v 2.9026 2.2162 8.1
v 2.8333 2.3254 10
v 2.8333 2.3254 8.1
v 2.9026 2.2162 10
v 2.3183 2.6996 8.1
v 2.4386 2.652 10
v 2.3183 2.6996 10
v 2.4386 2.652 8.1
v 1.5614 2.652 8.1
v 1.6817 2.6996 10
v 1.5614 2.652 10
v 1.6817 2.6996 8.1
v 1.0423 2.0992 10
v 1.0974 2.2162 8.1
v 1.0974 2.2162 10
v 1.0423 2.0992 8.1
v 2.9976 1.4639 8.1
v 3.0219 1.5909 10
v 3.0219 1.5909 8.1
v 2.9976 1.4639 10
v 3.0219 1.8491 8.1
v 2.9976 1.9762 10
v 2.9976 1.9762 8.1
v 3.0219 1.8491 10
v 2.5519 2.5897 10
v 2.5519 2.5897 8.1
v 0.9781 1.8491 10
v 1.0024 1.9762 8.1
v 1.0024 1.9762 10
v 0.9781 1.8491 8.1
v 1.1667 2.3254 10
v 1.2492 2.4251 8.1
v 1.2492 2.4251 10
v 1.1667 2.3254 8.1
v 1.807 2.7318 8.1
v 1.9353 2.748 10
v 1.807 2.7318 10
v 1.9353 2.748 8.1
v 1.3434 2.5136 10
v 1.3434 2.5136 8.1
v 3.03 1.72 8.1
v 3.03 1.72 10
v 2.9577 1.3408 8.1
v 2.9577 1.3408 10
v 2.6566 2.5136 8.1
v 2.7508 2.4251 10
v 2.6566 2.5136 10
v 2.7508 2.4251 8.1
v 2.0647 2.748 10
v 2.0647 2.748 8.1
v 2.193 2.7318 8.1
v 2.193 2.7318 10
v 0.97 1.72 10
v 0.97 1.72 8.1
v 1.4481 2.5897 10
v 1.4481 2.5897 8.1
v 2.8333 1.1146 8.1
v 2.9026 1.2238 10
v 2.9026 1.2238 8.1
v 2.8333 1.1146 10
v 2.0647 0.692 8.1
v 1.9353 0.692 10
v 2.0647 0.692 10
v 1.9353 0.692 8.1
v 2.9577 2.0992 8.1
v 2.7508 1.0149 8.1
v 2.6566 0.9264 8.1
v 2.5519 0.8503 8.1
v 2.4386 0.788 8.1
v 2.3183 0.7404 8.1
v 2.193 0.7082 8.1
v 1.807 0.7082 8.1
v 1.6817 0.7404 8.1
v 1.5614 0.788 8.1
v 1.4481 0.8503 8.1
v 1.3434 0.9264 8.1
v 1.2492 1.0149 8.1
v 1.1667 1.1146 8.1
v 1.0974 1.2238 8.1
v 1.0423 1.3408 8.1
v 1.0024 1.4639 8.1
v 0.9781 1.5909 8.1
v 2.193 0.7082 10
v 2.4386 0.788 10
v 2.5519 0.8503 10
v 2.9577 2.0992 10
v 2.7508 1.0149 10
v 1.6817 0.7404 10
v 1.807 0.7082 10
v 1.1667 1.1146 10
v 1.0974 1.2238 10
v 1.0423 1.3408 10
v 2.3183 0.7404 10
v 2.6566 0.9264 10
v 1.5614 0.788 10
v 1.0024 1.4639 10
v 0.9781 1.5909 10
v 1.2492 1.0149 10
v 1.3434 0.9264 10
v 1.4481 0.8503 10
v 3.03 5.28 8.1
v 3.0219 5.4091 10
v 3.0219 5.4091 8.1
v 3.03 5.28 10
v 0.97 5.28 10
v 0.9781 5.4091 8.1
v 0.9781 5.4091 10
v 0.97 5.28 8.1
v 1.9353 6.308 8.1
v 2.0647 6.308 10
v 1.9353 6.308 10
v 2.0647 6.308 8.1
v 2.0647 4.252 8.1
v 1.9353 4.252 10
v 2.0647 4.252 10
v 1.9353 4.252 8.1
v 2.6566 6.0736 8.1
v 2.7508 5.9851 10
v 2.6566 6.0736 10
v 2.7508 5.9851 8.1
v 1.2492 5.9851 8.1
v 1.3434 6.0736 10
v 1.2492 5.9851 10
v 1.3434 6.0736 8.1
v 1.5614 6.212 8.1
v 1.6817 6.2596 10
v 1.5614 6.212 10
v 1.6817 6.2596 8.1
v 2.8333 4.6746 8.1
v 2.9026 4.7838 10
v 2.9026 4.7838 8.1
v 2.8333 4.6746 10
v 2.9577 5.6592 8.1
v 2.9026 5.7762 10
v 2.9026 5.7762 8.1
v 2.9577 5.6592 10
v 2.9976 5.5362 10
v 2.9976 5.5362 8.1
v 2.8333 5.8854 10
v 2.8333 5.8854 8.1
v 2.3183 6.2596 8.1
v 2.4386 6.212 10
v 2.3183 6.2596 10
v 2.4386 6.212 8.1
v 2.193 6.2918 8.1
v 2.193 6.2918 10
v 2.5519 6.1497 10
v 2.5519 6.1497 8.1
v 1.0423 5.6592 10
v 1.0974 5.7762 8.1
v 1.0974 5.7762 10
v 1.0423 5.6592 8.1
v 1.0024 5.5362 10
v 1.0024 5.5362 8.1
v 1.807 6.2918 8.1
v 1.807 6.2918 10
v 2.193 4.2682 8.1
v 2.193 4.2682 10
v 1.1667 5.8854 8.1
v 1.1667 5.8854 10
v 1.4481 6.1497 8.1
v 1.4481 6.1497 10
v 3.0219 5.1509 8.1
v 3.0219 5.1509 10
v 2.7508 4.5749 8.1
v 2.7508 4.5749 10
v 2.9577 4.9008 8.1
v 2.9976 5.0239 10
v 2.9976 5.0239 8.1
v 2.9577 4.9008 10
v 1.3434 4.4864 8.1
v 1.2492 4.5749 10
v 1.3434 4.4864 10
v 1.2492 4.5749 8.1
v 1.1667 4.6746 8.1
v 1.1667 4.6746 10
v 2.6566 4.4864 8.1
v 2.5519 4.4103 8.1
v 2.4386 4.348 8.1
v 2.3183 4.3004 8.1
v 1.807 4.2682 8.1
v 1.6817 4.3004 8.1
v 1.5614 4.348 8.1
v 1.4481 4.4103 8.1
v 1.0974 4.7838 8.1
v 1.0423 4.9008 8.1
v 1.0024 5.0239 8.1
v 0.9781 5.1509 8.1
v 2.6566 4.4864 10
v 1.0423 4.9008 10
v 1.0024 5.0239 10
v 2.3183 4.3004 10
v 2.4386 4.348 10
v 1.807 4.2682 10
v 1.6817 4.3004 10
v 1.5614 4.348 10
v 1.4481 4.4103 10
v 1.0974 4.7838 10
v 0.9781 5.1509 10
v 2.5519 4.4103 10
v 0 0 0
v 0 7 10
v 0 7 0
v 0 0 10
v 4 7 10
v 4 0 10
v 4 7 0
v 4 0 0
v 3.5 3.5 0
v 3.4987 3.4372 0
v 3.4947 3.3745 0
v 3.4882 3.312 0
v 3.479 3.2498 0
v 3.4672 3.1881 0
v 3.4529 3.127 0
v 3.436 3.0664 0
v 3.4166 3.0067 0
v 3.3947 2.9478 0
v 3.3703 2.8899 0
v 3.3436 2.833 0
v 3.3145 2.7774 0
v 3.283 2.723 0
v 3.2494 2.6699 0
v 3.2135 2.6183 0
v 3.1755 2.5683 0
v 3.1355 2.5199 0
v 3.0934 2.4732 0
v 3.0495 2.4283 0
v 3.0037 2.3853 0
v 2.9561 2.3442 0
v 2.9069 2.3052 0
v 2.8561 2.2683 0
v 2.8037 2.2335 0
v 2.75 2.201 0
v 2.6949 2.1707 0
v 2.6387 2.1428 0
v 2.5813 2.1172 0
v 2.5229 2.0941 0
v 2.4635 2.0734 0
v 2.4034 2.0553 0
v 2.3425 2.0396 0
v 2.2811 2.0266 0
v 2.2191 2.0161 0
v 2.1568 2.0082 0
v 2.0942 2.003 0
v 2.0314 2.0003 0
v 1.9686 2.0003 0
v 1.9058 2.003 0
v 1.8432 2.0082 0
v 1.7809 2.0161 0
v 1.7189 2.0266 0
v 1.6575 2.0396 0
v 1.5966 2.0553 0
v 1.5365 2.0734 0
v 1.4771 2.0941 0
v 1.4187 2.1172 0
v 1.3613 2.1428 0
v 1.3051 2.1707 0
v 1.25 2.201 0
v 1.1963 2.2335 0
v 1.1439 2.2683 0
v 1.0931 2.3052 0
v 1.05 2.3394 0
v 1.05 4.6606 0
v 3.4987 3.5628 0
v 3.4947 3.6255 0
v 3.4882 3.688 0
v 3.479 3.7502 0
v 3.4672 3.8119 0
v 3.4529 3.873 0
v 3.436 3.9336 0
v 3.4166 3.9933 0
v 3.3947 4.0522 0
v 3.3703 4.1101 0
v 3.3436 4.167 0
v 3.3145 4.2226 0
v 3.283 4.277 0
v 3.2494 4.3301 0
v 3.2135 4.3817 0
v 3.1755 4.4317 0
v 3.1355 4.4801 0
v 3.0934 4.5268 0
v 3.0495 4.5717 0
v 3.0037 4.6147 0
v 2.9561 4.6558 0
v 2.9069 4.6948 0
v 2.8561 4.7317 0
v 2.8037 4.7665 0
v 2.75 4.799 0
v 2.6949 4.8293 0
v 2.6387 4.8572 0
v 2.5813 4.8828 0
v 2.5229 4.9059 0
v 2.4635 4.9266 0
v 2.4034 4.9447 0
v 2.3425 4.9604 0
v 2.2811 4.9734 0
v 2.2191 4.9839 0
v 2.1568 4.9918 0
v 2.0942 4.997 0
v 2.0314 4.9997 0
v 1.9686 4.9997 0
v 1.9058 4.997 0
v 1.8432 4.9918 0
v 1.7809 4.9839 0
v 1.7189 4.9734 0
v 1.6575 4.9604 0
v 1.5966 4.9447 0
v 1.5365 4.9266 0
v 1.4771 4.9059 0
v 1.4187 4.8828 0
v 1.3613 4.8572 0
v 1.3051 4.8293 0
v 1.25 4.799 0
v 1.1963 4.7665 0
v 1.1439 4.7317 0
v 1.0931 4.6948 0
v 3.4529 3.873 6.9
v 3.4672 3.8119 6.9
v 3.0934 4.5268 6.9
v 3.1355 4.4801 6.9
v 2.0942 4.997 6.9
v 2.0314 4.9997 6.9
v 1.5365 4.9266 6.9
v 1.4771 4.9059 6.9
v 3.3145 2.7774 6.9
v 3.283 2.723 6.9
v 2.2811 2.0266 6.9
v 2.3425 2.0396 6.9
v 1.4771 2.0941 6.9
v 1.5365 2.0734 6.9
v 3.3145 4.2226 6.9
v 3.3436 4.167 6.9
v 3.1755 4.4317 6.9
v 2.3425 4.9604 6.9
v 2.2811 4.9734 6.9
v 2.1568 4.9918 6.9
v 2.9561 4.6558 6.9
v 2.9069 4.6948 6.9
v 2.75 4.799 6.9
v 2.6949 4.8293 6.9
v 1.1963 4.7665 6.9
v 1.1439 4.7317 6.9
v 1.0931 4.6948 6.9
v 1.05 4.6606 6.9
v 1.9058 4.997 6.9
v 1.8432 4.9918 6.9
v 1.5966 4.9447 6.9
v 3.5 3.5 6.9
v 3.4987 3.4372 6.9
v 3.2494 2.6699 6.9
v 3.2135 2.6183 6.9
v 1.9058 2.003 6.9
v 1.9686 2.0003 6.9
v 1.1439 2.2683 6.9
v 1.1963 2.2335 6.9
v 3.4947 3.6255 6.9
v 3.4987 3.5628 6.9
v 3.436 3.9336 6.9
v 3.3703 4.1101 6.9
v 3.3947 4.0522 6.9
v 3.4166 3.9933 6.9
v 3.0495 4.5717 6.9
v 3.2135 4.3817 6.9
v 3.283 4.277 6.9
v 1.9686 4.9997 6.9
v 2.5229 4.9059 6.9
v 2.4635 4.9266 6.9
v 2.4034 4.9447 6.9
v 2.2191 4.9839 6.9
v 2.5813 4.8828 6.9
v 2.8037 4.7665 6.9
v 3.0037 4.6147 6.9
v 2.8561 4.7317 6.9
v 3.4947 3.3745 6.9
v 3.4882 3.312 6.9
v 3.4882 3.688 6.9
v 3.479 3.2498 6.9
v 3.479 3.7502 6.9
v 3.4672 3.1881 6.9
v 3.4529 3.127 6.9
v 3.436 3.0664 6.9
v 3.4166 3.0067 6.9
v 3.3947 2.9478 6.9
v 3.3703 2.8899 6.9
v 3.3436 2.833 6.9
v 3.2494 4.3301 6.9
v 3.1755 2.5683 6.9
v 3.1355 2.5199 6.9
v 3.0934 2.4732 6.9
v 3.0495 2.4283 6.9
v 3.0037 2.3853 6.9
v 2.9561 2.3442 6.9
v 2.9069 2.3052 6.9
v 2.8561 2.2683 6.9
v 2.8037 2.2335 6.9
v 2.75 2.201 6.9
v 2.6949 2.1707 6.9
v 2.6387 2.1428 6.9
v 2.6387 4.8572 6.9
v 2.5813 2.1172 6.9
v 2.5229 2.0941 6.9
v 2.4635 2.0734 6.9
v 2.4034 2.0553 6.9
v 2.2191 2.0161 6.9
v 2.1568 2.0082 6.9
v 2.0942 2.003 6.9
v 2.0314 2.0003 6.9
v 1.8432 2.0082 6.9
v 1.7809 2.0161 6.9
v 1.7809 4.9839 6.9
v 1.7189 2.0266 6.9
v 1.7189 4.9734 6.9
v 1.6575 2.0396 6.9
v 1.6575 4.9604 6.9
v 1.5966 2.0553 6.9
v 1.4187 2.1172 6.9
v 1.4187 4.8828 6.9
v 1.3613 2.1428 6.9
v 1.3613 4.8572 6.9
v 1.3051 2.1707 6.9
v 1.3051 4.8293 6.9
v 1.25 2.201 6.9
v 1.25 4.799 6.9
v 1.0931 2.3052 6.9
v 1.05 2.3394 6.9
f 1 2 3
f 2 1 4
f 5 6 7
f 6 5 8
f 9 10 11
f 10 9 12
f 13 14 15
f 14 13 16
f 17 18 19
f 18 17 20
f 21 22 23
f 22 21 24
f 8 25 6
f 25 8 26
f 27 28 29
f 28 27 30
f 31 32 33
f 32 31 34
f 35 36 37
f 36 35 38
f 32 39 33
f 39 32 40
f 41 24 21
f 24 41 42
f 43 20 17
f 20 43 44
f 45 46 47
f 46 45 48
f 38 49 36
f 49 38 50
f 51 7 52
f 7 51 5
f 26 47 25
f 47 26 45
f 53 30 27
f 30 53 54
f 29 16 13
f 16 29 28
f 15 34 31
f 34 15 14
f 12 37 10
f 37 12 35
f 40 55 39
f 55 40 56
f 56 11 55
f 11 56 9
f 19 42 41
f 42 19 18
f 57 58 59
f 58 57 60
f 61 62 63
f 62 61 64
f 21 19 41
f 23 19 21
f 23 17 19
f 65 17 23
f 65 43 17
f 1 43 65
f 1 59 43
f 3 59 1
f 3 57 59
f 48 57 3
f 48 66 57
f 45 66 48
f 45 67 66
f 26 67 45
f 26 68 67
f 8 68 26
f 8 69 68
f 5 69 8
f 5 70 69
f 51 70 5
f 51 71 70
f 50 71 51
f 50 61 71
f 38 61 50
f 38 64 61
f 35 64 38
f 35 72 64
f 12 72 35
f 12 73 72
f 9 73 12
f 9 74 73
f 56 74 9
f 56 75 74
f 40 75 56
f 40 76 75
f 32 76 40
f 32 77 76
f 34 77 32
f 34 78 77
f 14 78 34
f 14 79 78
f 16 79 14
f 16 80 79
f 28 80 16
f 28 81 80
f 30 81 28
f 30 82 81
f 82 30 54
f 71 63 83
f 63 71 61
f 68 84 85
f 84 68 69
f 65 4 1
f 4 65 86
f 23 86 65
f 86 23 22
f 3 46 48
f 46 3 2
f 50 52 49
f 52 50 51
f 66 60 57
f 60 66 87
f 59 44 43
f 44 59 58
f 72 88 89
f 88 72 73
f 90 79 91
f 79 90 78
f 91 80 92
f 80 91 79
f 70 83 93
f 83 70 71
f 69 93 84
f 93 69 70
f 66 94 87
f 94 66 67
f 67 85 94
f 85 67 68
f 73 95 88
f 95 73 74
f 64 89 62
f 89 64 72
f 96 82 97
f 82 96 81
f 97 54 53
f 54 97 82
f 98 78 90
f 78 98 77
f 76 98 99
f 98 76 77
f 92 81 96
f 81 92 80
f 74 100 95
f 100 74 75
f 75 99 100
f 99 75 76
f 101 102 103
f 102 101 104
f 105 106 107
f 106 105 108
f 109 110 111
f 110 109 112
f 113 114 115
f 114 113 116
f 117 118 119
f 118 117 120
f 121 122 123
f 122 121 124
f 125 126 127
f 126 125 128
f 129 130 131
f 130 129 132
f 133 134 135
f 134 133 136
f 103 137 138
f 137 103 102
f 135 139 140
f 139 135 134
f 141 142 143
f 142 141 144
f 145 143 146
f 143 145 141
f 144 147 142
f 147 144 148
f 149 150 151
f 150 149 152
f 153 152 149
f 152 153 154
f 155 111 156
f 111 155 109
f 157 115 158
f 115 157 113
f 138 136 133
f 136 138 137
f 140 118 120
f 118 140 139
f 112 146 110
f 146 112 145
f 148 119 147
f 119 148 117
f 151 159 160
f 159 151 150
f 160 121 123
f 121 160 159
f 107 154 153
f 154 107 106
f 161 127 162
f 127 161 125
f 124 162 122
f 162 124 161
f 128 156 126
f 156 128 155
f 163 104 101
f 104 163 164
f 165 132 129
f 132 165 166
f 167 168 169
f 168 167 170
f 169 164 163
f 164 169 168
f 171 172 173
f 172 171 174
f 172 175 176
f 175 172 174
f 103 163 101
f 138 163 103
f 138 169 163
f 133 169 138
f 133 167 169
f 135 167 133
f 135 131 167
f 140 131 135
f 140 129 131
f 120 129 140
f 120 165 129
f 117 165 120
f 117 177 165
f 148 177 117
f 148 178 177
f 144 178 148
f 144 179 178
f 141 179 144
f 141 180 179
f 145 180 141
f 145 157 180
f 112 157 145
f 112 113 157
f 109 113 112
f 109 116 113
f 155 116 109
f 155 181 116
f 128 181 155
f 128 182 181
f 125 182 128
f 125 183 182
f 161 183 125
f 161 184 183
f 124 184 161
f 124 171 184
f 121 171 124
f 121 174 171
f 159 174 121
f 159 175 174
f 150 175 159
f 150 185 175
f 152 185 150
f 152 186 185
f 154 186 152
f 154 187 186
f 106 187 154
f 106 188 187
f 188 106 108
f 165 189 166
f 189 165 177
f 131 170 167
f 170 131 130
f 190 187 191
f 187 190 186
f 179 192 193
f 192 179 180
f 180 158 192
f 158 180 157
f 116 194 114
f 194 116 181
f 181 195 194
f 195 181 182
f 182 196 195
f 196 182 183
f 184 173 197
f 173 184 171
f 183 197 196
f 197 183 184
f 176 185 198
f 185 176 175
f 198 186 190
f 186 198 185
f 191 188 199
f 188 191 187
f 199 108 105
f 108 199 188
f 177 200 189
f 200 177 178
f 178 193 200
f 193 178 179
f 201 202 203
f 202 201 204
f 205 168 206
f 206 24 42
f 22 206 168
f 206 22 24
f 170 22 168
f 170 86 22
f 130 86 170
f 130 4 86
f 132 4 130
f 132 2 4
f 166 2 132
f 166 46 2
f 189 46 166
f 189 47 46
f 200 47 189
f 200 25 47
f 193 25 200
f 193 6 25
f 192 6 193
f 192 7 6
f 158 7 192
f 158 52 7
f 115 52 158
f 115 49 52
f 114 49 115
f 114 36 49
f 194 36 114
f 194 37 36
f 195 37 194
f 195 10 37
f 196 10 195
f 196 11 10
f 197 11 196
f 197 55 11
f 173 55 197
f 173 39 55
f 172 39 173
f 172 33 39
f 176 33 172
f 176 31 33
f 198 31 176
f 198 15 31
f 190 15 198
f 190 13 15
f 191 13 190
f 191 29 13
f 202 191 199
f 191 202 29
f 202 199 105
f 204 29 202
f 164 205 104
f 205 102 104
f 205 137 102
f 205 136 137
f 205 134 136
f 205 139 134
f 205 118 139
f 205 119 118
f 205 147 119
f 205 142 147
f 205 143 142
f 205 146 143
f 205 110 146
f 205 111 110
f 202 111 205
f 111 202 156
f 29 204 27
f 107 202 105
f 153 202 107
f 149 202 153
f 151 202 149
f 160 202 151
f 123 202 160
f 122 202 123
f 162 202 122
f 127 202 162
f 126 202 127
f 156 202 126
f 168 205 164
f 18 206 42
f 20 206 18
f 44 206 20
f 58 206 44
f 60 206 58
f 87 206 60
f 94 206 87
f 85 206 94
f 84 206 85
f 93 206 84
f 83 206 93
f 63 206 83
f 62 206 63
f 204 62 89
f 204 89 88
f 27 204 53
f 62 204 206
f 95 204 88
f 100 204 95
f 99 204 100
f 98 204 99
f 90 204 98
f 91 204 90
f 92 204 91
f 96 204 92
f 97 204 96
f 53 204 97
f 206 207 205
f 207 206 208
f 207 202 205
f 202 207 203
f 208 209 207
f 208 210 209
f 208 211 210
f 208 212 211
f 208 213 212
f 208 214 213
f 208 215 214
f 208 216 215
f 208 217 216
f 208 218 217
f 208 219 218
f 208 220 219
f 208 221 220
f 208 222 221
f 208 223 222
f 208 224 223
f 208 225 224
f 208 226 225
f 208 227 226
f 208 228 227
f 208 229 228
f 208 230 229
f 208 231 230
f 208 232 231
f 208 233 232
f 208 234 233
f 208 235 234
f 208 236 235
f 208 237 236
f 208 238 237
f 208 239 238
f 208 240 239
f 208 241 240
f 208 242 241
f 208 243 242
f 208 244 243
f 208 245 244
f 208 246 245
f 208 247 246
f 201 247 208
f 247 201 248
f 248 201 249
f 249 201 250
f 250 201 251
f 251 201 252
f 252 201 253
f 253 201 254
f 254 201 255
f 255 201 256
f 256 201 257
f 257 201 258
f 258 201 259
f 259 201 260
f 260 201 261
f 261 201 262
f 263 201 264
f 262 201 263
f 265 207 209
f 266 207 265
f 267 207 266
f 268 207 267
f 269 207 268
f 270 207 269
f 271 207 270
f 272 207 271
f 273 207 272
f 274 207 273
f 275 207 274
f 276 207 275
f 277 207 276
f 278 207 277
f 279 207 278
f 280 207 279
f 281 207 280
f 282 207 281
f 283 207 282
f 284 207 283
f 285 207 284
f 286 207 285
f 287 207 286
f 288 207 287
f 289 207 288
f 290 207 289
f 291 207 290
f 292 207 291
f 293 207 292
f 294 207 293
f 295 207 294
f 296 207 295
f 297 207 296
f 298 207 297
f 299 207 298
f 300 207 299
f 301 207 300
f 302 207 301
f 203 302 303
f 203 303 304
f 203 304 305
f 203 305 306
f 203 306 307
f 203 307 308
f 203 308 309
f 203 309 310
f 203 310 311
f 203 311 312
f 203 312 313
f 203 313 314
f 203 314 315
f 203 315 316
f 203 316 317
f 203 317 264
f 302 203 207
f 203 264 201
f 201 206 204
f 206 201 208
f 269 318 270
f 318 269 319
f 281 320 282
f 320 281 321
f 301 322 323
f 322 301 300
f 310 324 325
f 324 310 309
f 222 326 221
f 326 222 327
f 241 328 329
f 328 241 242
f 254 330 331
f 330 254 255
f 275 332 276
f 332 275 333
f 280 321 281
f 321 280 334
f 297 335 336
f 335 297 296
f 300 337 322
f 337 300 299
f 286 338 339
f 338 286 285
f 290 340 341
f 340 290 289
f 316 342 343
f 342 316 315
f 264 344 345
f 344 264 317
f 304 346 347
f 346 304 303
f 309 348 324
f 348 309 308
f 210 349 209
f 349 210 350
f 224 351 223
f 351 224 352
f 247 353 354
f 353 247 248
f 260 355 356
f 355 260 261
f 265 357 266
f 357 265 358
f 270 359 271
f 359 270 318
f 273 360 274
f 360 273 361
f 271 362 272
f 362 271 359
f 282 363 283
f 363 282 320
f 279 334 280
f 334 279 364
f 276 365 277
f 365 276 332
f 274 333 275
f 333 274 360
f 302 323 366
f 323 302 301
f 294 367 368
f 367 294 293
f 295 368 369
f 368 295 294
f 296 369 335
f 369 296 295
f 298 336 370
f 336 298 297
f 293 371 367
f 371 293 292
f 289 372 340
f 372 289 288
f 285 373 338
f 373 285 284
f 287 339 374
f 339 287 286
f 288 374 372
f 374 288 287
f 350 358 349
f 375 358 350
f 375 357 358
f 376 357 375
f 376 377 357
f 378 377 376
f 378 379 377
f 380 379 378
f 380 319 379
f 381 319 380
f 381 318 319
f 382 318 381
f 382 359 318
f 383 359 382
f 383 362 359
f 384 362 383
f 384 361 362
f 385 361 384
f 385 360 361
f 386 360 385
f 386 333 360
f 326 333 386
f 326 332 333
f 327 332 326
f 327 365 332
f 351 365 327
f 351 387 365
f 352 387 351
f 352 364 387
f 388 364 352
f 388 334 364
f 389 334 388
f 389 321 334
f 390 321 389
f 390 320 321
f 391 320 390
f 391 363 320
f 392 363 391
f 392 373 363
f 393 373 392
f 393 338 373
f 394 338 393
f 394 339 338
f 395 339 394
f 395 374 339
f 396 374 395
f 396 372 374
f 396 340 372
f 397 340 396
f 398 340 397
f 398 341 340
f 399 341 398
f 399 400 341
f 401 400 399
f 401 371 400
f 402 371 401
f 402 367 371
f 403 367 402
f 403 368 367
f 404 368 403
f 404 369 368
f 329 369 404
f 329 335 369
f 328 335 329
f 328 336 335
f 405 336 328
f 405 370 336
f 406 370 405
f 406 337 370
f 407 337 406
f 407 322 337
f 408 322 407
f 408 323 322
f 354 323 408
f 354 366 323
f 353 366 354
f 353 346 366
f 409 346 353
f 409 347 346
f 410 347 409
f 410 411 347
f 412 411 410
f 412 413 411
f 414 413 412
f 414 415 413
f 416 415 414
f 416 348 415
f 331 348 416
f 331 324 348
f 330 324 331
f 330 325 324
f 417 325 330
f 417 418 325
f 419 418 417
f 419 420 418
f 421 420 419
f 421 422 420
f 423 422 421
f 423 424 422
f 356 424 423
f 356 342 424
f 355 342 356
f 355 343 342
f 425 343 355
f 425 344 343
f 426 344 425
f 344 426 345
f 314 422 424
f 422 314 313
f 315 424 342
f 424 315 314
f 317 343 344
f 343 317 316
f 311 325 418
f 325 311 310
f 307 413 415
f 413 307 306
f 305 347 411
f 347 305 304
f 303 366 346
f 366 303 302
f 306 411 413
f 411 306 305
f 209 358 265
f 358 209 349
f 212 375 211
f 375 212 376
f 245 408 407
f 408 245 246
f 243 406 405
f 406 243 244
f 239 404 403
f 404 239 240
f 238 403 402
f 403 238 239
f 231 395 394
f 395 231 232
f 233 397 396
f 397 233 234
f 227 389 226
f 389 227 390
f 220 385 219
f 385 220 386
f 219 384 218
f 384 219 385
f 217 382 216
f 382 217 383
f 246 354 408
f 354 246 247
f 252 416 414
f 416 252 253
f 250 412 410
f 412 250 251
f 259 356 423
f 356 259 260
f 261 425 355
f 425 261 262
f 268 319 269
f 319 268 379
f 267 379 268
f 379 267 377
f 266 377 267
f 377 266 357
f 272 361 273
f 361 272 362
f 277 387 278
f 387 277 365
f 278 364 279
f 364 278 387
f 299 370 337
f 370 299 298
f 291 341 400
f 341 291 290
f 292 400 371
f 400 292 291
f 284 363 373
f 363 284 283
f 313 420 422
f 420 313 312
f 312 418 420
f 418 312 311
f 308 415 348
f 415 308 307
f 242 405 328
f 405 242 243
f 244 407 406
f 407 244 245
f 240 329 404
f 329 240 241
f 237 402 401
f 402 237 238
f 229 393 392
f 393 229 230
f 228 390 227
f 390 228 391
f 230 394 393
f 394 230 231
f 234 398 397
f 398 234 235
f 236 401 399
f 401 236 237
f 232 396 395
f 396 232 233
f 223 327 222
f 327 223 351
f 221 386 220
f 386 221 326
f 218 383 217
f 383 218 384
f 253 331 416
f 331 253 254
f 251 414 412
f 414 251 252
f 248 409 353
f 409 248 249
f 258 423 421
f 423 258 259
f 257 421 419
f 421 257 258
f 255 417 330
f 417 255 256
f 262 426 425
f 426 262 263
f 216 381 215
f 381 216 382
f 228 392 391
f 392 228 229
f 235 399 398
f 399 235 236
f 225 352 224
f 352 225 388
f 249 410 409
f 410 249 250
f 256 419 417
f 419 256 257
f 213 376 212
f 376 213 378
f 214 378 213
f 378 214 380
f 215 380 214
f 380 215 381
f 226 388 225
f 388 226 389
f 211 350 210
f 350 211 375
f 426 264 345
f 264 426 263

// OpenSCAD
//KD_BZ-3D_magnet_holder.scad
//09/02/2016    Kevin Donkers, Cronin Group, University of Glasgow
//OpenSCAD file creating a 3D model of a holder for two magnets to be attached at the end of a motor shaft
//All values in mm.

//Motor shaft paramters
shtshape = "cylinder";  //shaft shape
shtd=3;       //shaft diameter
shtl=7;       //shaft length

//Magnet parameters
magshape = "cylinder";  //magnet shape
magd = 2.06;       //magnet diameter (cylinder)
magh = 2;       //magnet height (cylinder)
magx = 1;       //magnet width (cube)
magy = 1;       //magnet length (cube)
magz = 1;       //magnet depth (cube)
mags = 1.5;       //magnet spacing

//Holder parameters
hldshape = "cube";  //holder shape
hldd = 7;           //holder diameter (cylinder)
hldh = 2.5;           //holder height (cylinder)
hldx = 4;           //holder width (cube)
hldy = 7;           //holder length (cube)
hldz = 10;           //holder depth (cube)

//Set translation parameters
x= hldshape=="cube" ? hldx : hldd;
y= hldshape=="cube" ? hldy : hldd;
z= hldshape=="cube" ? hldz : hldh;

//Construct 
difference(){
    //Holder
    if (hldshape=="cylinder"){
        translate([hldd/2,hldd/2,0])
        cylinder(h=hldh,d=hldd,center=false,$fn=150);
    }
    else if (hldshape=="cube"){
        cube([hldx,hldy,hldz],center=false);
    }
    //Magnets
    if (magshape=="cylinder"){
        translate([x/2,y/2-magd/2-mags/2,z-magh+0.1])
        cylinder(h=magh,d=magd,center=false,$fn=50);
        translate([x/2,y/2+magd/2+mags/2,z-magh+0.1])
        cylinder(h=magh,d=magd,center=false,$fn=50);
    }
    else if (magshape=="cube"){
        translate([x/2,y/2-magy/2-mags/2,z-magz/2+0.1])
        cube([magx,magy,magz],center=true);
        translate([x/2,y/2+magy/2+mags/2,z-magz/2+0.1])
        cube([magx,magy,magz],center=true);
    }
    //Shaft
    if (shtshape=="cylinder"){
        translate([x/2,y/2,-0.1])
        cylinder(h=shtl,d=shtd,center=false,$fn=150);
    }
}

//shaft catch
        cube([(hldx-shtd)/2+0.55,hldy,shtl],center=false);
